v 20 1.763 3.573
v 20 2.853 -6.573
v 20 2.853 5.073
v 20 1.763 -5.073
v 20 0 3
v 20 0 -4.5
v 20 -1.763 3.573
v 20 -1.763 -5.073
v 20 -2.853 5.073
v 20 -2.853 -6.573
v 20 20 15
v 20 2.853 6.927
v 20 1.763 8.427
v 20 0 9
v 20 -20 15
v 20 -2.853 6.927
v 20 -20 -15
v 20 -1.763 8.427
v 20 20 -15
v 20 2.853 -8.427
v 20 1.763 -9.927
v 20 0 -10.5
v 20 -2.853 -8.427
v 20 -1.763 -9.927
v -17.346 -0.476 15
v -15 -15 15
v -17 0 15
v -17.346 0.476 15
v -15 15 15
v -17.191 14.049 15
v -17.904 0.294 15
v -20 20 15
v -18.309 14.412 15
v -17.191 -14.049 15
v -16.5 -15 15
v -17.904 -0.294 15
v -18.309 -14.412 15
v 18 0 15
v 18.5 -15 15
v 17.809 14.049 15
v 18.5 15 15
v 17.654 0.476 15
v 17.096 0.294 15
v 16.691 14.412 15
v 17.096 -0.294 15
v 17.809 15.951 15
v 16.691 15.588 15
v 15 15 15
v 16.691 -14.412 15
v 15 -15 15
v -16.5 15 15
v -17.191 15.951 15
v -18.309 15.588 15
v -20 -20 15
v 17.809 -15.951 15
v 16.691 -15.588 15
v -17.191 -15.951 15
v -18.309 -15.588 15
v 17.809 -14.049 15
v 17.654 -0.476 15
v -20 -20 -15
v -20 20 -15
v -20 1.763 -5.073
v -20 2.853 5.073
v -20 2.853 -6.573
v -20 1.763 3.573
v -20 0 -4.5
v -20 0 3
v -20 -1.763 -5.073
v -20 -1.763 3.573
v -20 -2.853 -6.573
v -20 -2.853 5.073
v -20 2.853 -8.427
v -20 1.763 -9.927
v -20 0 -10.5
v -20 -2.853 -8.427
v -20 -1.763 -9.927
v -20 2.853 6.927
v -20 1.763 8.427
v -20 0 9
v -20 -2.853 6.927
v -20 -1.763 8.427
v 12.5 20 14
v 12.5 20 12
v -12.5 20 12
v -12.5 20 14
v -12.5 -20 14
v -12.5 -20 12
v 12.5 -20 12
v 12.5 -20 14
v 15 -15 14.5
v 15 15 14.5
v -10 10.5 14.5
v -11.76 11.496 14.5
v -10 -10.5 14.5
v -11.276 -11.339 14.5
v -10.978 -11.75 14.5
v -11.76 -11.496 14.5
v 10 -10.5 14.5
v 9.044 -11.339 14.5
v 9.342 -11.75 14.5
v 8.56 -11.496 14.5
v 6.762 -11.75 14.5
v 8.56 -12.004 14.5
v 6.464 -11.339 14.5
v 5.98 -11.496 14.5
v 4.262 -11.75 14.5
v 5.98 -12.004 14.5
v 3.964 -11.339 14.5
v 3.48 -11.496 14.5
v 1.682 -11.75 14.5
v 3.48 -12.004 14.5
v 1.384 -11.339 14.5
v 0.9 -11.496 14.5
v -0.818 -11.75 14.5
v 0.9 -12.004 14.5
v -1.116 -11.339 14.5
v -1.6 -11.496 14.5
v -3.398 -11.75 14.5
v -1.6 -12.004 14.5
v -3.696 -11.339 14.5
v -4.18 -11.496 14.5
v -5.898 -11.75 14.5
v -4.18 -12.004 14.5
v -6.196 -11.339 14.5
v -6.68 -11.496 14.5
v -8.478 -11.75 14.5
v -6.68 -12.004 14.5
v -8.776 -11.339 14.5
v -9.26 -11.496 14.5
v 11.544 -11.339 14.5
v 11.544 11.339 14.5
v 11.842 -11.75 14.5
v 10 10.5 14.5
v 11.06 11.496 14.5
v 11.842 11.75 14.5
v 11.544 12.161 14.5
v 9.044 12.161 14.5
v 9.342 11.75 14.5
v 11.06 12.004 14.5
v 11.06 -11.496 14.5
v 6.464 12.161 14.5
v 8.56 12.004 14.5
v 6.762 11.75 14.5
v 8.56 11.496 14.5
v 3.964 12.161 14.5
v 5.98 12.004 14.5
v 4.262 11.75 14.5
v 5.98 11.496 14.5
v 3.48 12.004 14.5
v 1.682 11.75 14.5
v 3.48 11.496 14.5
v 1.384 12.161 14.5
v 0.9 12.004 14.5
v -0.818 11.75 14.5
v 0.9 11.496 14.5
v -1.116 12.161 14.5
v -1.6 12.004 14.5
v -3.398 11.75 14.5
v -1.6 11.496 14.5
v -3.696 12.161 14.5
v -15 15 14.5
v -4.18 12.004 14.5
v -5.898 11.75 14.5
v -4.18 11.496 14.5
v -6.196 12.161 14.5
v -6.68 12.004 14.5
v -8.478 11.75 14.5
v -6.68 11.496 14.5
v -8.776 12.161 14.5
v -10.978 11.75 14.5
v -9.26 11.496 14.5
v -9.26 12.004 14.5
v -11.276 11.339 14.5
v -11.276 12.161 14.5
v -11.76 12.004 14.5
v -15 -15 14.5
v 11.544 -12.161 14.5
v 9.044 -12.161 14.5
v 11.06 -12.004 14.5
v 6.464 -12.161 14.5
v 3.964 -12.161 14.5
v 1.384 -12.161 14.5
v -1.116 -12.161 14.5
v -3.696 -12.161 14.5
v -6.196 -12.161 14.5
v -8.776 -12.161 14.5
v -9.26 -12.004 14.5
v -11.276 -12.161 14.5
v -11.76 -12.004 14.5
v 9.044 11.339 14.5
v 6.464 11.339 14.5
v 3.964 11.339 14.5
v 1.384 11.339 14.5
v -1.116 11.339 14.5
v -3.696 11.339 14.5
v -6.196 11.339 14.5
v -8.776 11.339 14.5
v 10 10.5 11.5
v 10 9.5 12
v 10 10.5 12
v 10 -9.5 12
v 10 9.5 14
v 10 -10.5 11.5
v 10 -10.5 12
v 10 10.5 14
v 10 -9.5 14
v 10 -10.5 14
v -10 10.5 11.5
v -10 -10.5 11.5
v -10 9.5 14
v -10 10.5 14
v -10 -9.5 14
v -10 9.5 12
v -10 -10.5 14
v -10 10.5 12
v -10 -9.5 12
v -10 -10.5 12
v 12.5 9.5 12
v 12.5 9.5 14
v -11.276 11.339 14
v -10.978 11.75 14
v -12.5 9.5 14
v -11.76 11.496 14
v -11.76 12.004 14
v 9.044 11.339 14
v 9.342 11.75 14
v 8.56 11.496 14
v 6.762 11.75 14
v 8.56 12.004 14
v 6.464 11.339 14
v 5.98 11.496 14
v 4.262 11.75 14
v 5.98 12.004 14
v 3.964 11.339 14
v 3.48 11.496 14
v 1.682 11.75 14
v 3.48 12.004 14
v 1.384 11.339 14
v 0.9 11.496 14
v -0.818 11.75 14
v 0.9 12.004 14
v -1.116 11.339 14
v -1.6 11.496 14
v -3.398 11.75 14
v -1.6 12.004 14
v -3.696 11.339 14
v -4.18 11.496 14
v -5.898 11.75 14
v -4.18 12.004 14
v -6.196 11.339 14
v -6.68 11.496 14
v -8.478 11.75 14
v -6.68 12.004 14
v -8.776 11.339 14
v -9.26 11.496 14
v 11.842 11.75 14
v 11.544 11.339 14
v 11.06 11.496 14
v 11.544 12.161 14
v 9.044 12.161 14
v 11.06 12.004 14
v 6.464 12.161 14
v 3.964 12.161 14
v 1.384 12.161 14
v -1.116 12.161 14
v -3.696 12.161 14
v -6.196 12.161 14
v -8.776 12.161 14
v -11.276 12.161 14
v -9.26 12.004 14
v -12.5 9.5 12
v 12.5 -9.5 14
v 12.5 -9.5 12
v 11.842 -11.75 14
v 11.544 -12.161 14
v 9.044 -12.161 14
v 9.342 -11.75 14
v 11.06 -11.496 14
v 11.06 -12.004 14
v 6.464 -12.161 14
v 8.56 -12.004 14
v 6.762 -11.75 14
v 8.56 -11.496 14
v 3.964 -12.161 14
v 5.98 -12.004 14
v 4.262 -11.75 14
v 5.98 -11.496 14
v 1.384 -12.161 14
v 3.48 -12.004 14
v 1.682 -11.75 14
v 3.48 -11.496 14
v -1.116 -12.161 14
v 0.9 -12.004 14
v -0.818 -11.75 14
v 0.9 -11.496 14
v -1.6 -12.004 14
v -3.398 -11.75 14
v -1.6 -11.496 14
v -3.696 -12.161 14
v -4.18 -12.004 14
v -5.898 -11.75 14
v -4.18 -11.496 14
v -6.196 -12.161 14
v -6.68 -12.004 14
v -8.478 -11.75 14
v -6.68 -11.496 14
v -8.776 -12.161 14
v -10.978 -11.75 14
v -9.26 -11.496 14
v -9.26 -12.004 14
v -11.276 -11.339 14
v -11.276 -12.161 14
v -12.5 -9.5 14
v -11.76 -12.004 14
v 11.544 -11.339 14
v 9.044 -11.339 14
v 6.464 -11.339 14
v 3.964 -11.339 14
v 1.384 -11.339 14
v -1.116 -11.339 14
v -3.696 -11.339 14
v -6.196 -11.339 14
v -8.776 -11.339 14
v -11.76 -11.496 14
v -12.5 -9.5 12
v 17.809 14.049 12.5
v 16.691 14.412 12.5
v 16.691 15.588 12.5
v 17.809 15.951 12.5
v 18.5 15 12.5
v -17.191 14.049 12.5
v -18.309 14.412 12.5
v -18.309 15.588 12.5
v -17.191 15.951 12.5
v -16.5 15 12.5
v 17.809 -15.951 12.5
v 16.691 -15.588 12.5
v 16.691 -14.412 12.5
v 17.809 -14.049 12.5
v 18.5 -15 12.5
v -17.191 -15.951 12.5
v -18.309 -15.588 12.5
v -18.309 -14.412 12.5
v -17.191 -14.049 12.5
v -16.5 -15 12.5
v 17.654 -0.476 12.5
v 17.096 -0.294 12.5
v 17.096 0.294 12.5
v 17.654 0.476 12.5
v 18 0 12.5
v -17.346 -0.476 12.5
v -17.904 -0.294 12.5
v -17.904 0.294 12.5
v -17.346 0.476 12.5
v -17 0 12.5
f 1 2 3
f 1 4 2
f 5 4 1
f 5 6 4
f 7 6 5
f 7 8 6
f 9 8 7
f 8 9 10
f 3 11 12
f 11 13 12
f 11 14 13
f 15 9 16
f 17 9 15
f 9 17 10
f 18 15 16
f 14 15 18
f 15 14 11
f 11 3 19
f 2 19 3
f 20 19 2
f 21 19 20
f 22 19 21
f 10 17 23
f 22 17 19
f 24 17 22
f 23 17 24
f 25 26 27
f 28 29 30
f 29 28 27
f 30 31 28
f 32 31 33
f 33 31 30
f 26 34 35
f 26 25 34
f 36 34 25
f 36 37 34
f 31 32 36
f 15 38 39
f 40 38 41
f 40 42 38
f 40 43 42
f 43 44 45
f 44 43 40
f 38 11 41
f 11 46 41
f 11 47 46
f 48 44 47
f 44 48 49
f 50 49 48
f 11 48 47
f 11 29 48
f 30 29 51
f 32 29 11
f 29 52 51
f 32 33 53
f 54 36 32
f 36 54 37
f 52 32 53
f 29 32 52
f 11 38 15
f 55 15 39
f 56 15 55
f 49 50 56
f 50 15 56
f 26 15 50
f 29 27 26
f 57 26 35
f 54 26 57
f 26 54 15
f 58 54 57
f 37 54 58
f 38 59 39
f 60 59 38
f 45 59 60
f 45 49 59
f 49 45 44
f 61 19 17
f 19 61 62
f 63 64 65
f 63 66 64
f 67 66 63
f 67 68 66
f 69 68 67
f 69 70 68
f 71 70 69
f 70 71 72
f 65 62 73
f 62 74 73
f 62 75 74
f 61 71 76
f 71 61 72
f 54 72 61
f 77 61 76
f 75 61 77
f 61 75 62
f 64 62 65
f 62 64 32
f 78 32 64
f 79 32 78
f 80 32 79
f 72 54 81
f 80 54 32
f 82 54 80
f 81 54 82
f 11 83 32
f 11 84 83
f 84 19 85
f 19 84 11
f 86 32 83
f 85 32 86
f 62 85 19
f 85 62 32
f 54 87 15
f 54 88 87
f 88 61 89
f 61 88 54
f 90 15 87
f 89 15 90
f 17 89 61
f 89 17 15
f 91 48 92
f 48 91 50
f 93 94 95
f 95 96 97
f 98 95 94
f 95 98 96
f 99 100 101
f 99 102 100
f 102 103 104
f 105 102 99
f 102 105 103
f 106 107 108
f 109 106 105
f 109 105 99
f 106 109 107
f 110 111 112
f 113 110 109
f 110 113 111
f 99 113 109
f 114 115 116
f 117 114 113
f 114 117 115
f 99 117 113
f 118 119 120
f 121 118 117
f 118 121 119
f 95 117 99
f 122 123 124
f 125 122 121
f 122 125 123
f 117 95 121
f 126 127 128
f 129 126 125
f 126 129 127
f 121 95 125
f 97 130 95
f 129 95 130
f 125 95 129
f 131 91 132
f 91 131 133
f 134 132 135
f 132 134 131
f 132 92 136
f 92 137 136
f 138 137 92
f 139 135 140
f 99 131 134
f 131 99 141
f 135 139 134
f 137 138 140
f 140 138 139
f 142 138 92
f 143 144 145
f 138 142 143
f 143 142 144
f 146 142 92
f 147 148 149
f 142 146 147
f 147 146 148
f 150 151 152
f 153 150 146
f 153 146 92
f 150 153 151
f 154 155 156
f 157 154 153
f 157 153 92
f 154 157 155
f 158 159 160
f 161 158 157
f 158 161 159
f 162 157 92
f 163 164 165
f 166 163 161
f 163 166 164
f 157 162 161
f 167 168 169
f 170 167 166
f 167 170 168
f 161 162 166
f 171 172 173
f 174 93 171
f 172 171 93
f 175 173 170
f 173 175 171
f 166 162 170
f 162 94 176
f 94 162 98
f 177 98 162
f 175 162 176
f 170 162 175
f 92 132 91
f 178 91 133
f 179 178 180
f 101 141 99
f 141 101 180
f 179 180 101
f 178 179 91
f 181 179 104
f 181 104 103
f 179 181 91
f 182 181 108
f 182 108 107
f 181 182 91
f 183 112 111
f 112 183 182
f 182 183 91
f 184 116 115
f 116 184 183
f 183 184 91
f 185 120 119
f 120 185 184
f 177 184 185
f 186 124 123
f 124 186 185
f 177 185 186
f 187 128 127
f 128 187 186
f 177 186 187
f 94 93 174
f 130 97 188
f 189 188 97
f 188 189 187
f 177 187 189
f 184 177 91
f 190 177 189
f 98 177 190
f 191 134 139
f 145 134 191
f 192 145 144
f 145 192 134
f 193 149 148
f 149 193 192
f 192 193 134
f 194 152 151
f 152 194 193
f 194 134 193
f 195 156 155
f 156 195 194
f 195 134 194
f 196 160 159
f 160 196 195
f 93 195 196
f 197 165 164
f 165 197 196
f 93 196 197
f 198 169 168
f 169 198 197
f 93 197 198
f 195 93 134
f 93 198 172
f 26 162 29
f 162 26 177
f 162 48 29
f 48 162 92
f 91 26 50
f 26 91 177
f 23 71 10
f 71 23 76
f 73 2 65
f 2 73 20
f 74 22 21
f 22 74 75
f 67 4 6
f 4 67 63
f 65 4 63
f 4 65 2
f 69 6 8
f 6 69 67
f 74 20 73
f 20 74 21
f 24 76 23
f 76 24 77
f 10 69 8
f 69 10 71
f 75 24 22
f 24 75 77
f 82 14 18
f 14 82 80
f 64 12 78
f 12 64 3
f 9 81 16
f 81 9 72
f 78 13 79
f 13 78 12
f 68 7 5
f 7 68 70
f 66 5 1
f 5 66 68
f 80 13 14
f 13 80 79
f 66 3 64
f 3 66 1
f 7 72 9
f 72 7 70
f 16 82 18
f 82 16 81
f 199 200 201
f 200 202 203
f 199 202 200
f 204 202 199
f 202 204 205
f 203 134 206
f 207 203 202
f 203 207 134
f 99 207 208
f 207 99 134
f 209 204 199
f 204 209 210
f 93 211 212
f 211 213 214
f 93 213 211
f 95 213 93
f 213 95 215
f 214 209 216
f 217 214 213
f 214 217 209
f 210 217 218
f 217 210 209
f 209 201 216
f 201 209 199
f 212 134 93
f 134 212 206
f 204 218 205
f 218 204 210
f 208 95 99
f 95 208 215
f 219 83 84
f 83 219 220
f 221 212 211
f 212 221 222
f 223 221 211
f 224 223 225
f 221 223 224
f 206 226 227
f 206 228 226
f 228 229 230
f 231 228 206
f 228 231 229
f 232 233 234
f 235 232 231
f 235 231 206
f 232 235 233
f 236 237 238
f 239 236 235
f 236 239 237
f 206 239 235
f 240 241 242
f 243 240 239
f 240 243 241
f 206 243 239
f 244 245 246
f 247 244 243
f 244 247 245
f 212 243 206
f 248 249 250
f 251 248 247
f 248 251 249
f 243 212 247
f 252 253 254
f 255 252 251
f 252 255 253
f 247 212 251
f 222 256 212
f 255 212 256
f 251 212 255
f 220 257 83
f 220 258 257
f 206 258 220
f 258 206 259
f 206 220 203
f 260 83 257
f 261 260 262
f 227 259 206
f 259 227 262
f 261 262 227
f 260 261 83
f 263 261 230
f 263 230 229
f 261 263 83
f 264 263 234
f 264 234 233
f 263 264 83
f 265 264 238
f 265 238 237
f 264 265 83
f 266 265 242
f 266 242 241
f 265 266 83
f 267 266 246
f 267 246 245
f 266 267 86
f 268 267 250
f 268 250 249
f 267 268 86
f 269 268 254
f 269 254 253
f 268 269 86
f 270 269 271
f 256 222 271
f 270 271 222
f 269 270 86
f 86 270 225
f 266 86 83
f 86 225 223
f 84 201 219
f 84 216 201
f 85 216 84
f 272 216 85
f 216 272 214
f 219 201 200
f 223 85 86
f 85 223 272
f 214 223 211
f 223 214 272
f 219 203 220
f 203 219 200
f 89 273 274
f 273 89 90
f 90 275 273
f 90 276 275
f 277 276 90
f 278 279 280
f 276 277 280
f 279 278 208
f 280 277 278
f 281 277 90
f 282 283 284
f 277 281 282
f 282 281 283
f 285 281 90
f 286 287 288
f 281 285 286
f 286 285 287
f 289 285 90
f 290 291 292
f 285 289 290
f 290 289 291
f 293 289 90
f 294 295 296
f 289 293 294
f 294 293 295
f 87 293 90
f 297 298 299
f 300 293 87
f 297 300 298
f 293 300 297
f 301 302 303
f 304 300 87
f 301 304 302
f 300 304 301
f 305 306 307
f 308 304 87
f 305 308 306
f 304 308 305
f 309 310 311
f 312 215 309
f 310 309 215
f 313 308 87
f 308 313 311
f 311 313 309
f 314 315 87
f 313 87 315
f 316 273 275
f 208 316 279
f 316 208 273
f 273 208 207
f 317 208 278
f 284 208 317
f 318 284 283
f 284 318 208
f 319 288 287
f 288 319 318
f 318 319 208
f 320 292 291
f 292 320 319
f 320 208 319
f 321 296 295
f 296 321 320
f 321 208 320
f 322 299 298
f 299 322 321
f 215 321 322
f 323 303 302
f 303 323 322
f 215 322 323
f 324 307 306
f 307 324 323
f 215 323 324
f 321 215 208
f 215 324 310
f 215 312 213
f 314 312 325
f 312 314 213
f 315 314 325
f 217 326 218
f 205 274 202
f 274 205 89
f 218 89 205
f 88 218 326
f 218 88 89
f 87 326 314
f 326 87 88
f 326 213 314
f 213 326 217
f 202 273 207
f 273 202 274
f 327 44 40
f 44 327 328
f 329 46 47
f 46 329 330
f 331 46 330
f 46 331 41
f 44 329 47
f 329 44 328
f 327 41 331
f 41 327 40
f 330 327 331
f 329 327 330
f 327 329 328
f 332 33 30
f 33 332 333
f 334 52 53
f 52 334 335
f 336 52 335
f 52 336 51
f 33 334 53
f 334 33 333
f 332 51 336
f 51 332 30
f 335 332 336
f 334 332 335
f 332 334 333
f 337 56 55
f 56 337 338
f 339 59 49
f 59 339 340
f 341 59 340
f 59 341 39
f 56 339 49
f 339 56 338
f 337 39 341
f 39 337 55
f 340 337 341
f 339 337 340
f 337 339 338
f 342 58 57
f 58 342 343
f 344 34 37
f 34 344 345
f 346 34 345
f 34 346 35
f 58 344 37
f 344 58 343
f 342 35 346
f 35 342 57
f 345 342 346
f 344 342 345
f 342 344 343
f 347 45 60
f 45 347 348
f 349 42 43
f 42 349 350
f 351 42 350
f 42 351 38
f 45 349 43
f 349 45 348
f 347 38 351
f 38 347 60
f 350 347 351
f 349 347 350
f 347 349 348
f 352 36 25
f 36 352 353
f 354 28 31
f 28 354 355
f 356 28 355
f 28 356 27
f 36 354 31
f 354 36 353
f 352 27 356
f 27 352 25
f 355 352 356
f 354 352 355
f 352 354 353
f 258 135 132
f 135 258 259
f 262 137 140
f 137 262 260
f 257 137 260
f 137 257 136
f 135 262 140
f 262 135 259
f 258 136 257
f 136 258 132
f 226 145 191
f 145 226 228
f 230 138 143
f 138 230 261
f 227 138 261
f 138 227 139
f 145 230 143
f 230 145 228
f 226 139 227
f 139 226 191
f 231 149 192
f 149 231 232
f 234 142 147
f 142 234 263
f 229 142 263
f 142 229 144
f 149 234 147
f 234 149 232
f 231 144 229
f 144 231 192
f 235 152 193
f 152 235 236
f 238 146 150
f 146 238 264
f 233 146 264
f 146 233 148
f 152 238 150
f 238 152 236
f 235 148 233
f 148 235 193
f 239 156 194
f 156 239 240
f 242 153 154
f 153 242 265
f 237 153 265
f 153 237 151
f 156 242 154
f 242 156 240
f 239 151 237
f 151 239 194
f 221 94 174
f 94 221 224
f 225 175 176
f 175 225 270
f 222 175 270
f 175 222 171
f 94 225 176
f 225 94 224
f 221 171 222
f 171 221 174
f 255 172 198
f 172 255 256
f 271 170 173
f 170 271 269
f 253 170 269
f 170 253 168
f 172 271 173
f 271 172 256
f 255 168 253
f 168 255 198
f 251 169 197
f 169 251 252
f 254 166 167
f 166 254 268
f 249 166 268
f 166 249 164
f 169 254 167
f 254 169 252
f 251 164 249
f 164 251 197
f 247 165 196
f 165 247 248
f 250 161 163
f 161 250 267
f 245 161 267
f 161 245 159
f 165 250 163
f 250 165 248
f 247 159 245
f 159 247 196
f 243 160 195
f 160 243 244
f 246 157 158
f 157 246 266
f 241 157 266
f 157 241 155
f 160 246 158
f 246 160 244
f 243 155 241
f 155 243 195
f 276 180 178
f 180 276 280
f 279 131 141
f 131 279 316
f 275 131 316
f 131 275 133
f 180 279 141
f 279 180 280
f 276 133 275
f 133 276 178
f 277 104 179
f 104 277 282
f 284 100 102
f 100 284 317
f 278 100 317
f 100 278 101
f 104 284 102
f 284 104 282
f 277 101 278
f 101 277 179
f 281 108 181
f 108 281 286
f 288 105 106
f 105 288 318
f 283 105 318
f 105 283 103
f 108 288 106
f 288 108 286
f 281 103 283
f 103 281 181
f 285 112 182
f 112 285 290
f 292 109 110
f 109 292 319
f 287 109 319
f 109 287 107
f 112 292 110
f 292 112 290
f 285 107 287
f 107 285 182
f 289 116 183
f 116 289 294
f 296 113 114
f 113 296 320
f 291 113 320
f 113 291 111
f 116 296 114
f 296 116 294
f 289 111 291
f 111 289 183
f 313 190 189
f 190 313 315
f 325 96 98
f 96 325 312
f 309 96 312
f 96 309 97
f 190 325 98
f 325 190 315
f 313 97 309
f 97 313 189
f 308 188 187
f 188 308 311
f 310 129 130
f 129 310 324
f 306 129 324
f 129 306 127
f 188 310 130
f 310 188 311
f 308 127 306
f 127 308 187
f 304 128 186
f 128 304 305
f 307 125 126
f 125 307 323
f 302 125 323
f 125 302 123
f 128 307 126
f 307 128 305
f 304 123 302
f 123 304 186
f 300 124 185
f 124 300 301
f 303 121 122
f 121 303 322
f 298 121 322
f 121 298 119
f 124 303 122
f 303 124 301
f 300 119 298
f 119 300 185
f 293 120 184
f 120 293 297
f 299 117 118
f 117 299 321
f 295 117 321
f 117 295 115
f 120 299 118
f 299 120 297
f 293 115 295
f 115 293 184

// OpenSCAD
//Substrate holder v2


module substrate_holder(x1,y1,z1, s_d)
{
    
    //substrate dimensions
    x=30;
    y=30;
    z=1.1;
    d=0.8641;
    
    //negative y
    difference(){
    difference(){
    difference(){
    difference(){
    difference(){
    difference(){
    difference(){
    difference(){
    difference(){
    difference(){
       // positive y 
    difference(){
    difference(){
    difference(){
    difference(){
    difference(){
    difference(){
    difference(){
    difference(){
    difference(){
    difference(){
    
    //negative y
    //difference(){
    //difference(){
    //difference(){
    //difference(){
    //difference(){
    //difference(){
    //difference(){
    //difference(){
    //difference(){
    //difference(){
       // positive y 
    //difference(){
    //difference(){
    //difference(){
    //difference(){
    //difference(){
    //difference(){
    //difference(){
    //difference(){
    //difference(){
    //difference(){
        
        //components
            
            difference(){
            difference(){
            difference(){
            difference(){
            difference(){
            difference(){
            difference(){
            difference(){
            difference(){
            difference(){
            difference(){
            difference(){
            //difference(){
        cube ([x1,y1,z1], center = true);
        
        //substrate outline
        translate([0,0,z1/2]) 
        cube([x,y,1], center = true);}
            // cartridge heater
                translate([0,0,-z1/4])
                rotate([0,90,0])
                cylinder(r=3, h=x1+1, center = true);}
                
             // temp sensor
                translate([0,0,6])
                rotate([0,90,0])
                cylinder(r=3, h=x1+1, center = true);} 
             // air flow 
              
              translate([0,0,z1/2])
              cube([x-10,y-9,7], center =true);}
              
              translate([0,15,z1/2-2])
              cube([x-5,y-19,2], center =true);}
              
              translate([0,-15,z1/2-2])
              cube([x-5,y-19,2], center =true);}
             
              
                
            
                
             //bracket
             translate([17.5,y/2,z1/2])
             cylinder(r=1, h=5, center =true);}
             
             translate([-17.5,y/2,z1/2])
             cylinder(r=1, h=5, center =true);}
             
             translate([17.5,-(y/2),z1/2])
             cylinder(r=1, h=5, center =true);}
             
             translate([-17.5,-(y/2),z1/2])
             cylinder(r=1, h=5, center =true);}
             
             //bracket guide pins
             translate([17.5,0,z1/2])
             cylinder(r=0.5, h=5, center =true);}
             translate([-17.5,0,z1/2])
             cylinder(r=0.5, h=5, center =true);}
             
                
                
                
                // gap for heater
                //translate([0,0,0])
                //rotate([0,0,0])
                //cylinder(r=8, h=x1+1, center = true);} 
              
        //sideways oriented holes        
        // positive y posiitve x   
////        translate([x/2-3.59,y/2+1,z1/2])
////             rotate([90,0,0])
////        cylinder(r=d/2, h=9, center =true);}
////        
////        translate([x/2-6.09,y/2+1,z1/2])
////         rotate([90,0,0])
////        cylinder(r=d/2, h=9, center =true);}
////        
////          translate([x/2-8.67,y/2+1,z1/2])
////         rotate([90,0,0])
////        cylinder(r=d/2, h=9, center =true);}
////        
////        translate([x/2-11.17,y/2+1,z1/2])
////         rotate([90,0,0])
////        cylinder(r=d/2, h=9, center =true);}
////        
////        translate([x/2-13.75,y/2+1,z1/2])
////         rotate([90,0,0])
////        cylinder(r=d/2, h=9, center =true);}
////        
////        //positive y negative x
////        translate([-(x/2-3.59),y/2+1,z1/2])
////         rotate([90,0,0])
////        cylinder(r=d/2, h=9, center =true);}
////        
////        translate([-(x/2-6.09),y/2+1,z1/2])
////         rotate([90,0,0])
////        cylinder(r=d/2, h=9, center =true);}
////        
////          translate([-(x/2-8.67),y/2+1,z1/2])
////         rotate([90,0,0])
////        cylinder(r=d/2, h=9, center =true);}
////        
////        translate([-(x/2-11.17),y/2+1,z1/2])
////         rotate([90,0,0])
////        cylinder(r=d/2, h=9, center =true);}
////        
////        translate([-(x/2-13.75),y/2+1,z1/2])
////         rotate([90,0,0])
////        cylinder(r=d/2, h=9, center =true);}
////        
////         // negative y positve x   
////        translate([x/2-3.59,-(y/2+1),z1/2])
////         rotate([90,0,0])
////        cylinder(r=d/2, h=9, center =true);}
////        
////        translate([x/2-6.09,-(y/2+1),z1/2])
////         rotate([90,0,0])
////        cylinder(r=d/2, h=9, center =true);}
////        
////          translate([x/2-8.67,-(y/2+1),z1/2])
////         rotate([90,0,0])
////        cylinder(r=d/2, h=9, center =true);}
////        
////        translate([x/2-11.17,-(y/2+1),z1/2])
////         rotate([90,0,0])
////        cylinder(r=d/2, h=9, center =true);}
////        
////        translate([x/2-13.75,-(y/2+1),z1/2])
////         rotate([90,0,0])
////        cylinder(r=d/2, h=9, center =true);}
////        
////        //negative y negative x
////        translate([-(x/2-3.59),-(y/2+1),z1/2])
////         rotate([90,0,0])
////        cylinder(r=d/2, h=9, center =true);}
////        
////        translate([-(x/2-6.09),-(y/2+1),z1/2])
////         rotate([90,0,0])
////        cylinder(r=d/2, h=9, center =true);}
////        
////          translate([-(x/2-8.67),-(y/2+1),z1/2])
////         rotate([90,0,0])
////        cylinder(r=d/2, h=9, center =true);}
////        
////        translate([-(x/2-11.17),-(y/2+1),z1/2])
////         rotate([90,0,0])
////        cylinder(r=d/2, h=9, center =true);}
////        
////        translate([-(x/2-13.75),-(y/2+1),z1/2])
////         rotate([90,0,0])
////        cylinder(r=d/2, h=9, center =true);}
    
    
        
//Vertical oriented holes        
         // positive y posiitve x   
        translate([x/2-3.59,y/2-3.25,z1/2])
        cylinder(r=d/2, h=z+1.1, center =true);}
        
        translate([x/2-6.09,y/2-3.25,z1/2])
        cylinder(r=d/2, h=z+1.1, center =true);}
        
          translate([x/2-8.67,y/2-3.25,z1/2])
        cylinder(r=d/2, h=z+1.1, center =true);}
        
        translate([x/2-11.17,y/2-3.25,z1/2])
        cylinder(r=d/2, h=z+1.1, center =true);}
        
        translate([x/2-13.75,y/2-3.25,z1/2])
        cylinder(r=d/2, h=z+1.1, center =true);}
        
        //positive y negative x
        translate([-(x/2-3.59),y/2-3.25,z1/2])
        cylinder(r=d/2, h=z+1.1, center =true);}
        
        translate([-(x/2-6.09),y/2-3.25,z1/2])
        cylinder(r=d/2, h=z+1.1, center =true);}
        
          translate([-(x/2-8.67),y/2-3.25,z1/2])
        cylinder(r=d/2, h=z+1.1, center =true);}
        
        translate([-(x/2-11.17),y/2-3.25,z1/2])
        cylinder(r=d/2, h=z+1.1, center =true);}
        
        translate([-(x/2-13.75),y/2-3.25,z1/2])
        cylinder(r=d/2, h=z+1.1, center =true);}
        
         // negative y positve x   
        translate([x/2-3.59,-(y/2-3.25),z1/2])
        cylinder(r=d/2, h=z+1.1, center =true);}
        
        translate([x/2-6.09,-(y/2-3.25),z1/2])
        cylinder(r=d/2, h=z+1.1, center =true);}
        
          translate([x/2-8.67,-(y/2-3.25),z1/2])
        cylinder(r=d/2, h=z+1.1, center =true);}
        
        translate([x/2-11.17,-(y/2-3.25),z1/2])
        cylinder(r=d/2, h=z+1.1, center =true);}
        
        translate([x/2-13.75,-(y/2-3.25),z1/2])
        cylinder(r=d/2, h=z+1.1, center =true);}
        
        //negative y negative x
        translate([-(x/2-3.59),-(y/2-3.25),z1/2])
        cylinder(r=d/2, h=z+1.1, center =true);}
        
        translate([-(x/2-6.09),-(y/2-3.25),z1/2])
        cylinder(r=d/2, h=z+1.1, center =true);}
        
          translate([-(x/2-8.67),-(y/2-3.25),z1/2])
        cylinder(r=d/2, h=z+1.1, center =true);}
        
        translate([-(x/2-11.17),-(y/2-3.25),z1/2])
        cylinder(r=d/2, h=z+1.1, center =true);}
        
        translate([-(x/2-13.75),-(y/2-3.25),z1/2])
        cylinder(r=d/2, h=z+1.1, center =true);}
    
    
    
    
    
    
    
    
    
    
    
    
    
    
    
    
    
    
    
    
    }

    substrate_holder(40,40,30);
